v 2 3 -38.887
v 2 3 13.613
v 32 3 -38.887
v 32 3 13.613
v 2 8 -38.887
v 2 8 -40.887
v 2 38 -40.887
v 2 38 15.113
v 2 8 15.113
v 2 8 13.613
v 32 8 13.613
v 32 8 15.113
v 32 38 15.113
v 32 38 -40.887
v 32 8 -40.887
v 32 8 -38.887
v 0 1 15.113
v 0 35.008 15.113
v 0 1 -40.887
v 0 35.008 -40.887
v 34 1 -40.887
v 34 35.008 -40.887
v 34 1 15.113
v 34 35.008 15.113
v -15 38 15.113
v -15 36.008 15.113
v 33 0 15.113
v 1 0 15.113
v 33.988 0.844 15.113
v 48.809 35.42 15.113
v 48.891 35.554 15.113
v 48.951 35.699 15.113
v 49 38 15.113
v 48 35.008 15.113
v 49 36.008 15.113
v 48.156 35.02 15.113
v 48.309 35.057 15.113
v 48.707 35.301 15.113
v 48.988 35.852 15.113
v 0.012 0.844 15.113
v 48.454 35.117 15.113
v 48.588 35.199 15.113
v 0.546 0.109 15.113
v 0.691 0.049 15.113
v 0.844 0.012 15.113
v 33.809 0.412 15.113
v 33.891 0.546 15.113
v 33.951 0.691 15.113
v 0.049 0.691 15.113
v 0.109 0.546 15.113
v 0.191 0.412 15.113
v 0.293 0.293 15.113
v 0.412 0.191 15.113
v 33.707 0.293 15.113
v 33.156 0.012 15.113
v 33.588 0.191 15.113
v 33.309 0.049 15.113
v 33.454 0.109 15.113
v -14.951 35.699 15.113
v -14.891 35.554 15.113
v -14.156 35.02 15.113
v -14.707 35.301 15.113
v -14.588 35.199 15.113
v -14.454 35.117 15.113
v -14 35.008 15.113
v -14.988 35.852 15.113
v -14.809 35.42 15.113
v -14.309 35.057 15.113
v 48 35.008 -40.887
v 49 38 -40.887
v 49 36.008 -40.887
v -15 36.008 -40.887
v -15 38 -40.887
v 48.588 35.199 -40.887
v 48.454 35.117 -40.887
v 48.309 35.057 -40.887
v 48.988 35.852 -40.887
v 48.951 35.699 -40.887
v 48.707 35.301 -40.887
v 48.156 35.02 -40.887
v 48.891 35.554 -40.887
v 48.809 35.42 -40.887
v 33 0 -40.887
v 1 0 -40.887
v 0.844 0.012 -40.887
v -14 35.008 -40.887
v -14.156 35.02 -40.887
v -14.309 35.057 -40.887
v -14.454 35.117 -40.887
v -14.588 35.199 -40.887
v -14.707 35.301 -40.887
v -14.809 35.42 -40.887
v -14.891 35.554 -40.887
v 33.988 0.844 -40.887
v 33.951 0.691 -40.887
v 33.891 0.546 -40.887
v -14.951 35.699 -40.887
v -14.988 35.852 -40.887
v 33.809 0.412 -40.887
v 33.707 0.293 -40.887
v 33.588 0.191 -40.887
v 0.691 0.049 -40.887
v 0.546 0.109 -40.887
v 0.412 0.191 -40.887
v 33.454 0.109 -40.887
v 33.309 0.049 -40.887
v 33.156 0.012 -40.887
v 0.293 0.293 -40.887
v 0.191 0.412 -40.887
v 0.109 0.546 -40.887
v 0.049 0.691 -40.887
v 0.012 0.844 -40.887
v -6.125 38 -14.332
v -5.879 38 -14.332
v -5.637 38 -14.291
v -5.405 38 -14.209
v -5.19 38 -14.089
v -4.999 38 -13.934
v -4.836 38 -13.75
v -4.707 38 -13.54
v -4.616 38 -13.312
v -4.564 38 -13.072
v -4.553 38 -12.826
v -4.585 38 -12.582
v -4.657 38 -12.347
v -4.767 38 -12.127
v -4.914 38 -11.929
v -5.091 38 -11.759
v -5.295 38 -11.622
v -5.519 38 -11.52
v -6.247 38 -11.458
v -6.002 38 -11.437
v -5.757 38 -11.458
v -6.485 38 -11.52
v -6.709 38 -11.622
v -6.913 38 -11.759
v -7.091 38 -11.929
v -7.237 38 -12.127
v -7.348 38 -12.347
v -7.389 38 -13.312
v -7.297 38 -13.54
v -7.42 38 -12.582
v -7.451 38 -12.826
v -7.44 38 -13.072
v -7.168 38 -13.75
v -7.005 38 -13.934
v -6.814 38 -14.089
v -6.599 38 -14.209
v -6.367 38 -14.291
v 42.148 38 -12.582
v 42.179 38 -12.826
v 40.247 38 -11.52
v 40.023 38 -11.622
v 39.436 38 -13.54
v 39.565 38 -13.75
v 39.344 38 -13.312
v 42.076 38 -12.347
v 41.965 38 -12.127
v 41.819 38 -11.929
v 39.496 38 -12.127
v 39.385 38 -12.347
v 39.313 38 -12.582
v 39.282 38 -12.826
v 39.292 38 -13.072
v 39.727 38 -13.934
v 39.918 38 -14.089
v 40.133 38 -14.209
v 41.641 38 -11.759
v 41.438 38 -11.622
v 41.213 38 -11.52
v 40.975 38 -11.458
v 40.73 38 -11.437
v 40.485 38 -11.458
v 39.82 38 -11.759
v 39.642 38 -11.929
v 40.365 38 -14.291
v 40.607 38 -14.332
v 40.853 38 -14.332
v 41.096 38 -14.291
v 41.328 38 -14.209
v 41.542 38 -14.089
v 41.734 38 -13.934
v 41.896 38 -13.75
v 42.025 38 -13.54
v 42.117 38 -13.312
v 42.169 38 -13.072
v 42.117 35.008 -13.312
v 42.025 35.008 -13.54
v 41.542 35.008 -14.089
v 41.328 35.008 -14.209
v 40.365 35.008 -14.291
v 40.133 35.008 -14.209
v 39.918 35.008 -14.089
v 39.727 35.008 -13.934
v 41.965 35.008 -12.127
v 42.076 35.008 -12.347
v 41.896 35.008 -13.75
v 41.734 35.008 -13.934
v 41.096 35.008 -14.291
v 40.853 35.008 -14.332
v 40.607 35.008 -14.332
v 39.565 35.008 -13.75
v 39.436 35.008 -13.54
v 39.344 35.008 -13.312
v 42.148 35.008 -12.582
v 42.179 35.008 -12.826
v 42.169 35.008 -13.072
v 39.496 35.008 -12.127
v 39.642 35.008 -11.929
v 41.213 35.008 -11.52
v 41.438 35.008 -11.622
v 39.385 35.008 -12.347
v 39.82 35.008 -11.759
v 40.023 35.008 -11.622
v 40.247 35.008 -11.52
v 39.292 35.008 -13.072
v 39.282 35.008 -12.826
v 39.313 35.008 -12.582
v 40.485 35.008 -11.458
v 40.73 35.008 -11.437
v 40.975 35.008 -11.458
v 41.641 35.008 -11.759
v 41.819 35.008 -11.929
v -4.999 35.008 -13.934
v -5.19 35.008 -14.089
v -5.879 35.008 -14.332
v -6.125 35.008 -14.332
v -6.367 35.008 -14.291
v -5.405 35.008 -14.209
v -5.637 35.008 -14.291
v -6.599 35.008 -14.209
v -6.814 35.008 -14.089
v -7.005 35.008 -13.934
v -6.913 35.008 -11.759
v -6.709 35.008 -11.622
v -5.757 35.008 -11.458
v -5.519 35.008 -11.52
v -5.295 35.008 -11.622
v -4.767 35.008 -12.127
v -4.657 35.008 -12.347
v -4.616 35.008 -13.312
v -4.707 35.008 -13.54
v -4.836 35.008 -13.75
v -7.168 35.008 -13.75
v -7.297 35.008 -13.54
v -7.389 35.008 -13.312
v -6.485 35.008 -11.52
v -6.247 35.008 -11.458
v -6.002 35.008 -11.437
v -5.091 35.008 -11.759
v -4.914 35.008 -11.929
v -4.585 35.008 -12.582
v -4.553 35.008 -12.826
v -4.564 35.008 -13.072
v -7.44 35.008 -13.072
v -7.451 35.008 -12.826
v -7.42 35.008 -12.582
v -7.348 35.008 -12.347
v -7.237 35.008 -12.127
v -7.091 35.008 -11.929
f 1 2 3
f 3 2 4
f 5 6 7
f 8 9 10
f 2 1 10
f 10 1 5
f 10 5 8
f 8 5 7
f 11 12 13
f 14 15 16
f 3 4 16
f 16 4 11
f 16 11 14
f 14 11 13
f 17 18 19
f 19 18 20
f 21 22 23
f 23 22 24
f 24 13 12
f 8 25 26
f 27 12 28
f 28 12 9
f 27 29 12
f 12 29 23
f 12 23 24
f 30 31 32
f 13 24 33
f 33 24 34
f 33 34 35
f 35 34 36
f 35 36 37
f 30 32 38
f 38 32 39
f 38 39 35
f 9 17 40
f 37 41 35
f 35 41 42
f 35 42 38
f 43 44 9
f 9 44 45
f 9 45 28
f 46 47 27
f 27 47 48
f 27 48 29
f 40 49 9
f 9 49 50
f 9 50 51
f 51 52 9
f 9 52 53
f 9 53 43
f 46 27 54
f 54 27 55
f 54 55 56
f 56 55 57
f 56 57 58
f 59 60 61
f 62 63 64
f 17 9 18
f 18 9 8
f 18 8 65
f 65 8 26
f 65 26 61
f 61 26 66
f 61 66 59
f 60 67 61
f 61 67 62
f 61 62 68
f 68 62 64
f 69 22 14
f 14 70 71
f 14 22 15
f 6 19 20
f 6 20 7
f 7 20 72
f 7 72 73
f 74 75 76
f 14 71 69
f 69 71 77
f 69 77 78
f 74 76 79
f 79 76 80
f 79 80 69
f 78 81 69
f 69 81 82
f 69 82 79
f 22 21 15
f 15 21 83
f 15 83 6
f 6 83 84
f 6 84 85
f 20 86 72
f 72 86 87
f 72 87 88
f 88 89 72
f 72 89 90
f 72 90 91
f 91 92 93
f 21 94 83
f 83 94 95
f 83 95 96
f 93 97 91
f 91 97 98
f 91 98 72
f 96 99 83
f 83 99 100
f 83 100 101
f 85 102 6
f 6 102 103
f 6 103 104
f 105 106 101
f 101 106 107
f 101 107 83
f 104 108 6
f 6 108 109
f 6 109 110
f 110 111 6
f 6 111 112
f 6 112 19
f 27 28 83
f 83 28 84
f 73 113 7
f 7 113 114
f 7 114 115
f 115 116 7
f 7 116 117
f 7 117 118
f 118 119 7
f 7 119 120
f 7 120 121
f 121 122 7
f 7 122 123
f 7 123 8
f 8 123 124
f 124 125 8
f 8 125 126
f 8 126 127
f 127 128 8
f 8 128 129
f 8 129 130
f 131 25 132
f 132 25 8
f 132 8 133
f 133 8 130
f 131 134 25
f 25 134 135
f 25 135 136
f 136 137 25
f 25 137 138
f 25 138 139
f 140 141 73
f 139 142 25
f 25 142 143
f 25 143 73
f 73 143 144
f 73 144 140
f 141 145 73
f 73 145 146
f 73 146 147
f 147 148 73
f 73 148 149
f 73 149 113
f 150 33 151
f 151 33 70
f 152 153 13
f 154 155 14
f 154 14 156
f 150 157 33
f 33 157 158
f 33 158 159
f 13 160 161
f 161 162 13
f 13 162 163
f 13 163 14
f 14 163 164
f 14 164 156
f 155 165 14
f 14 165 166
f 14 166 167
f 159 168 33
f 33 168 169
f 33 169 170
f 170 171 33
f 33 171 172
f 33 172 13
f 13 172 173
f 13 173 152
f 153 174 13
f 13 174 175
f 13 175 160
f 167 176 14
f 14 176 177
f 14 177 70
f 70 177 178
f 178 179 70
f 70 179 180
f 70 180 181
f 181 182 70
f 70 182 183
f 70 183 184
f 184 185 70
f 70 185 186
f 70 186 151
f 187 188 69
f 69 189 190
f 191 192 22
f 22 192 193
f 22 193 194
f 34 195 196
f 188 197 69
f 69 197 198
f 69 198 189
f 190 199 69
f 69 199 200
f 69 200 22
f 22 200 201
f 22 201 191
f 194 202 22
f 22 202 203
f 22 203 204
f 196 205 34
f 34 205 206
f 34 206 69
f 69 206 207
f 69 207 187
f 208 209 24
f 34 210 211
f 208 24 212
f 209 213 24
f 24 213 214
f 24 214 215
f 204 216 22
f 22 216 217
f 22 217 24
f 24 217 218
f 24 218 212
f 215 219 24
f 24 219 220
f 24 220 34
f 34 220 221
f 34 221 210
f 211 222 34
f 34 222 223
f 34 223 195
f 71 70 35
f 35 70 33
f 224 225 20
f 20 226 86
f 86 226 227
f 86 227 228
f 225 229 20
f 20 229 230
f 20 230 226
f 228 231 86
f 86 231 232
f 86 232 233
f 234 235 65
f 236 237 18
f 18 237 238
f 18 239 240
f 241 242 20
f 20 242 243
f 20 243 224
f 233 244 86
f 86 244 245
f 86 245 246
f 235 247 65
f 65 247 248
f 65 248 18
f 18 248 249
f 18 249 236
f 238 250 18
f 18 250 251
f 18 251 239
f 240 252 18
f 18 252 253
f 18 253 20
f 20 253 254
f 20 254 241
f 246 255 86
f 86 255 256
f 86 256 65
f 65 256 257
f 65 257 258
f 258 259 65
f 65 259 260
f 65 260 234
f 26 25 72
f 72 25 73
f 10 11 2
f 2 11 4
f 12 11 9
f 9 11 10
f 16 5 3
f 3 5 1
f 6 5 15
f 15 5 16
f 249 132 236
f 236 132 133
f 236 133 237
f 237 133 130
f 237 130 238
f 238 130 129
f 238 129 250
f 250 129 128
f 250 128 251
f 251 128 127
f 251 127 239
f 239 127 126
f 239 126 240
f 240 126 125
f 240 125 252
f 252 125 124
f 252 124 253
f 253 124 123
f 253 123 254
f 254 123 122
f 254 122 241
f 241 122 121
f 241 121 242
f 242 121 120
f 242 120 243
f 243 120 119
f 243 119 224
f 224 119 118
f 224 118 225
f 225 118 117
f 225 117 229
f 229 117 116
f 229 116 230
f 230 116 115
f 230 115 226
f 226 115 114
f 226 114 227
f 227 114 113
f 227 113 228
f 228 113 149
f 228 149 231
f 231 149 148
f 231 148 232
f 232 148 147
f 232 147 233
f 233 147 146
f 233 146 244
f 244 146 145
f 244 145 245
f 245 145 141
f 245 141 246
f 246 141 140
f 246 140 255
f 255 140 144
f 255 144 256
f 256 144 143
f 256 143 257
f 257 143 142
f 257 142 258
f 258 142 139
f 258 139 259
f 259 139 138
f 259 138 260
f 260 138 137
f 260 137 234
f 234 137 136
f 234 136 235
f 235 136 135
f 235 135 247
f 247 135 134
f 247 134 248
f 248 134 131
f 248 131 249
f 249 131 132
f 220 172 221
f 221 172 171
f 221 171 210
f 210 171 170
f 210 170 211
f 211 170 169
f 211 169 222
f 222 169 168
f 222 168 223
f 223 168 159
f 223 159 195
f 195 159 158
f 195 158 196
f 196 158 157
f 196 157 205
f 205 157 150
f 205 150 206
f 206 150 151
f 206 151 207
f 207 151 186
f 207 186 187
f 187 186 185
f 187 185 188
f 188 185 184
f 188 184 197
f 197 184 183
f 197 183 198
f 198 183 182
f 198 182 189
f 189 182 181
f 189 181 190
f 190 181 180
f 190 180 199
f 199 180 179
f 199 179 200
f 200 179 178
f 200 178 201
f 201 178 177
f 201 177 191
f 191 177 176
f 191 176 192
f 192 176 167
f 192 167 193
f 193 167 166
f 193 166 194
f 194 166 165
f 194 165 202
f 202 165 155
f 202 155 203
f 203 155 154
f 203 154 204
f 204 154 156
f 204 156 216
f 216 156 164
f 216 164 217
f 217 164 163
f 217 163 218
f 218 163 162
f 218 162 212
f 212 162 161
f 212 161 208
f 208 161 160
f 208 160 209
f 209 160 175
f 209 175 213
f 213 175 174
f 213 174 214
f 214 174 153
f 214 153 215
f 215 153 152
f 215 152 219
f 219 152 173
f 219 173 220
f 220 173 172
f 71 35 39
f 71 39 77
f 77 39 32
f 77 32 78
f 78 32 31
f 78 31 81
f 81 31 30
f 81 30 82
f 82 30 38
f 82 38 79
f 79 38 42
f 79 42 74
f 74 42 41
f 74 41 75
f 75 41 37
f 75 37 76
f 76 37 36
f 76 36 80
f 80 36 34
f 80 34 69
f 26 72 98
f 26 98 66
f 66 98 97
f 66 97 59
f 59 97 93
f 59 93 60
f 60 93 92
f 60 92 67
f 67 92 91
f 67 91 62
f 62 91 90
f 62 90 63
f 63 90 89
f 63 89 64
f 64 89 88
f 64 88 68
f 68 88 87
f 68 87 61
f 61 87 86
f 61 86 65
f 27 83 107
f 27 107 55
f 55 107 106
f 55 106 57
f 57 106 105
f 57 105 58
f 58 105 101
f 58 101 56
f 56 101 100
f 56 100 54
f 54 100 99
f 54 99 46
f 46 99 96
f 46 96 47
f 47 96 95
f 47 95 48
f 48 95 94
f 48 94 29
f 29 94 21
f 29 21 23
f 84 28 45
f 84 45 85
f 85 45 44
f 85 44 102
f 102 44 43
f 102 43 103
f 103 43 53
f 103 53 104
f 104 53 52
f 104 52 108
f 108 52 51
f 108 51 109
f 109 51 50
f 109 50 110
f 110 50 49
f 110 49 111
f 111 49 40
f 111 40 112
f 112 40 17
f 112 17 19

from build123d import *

# Parameters (mm, degrees)
SKETCH2_W           = 34
SKETCH2_H           = 56
BOSS_EXTRUDE1_DEPTH = 3
SKETCH3_W           = 2
SKETCH3_H           = 56
BOSS_EXTRUDE2_DEPTH = 35
SKETCH4_W           = 56
SKETCH4_H           = 2.991859995
BOSS_EXTRUDE3_DEPTH = 15
SKETCH5_W           = 56
SKETCH5_H           = 2.991859995
BOSS_EXTRUDE4_DEPTH = 15
SKETCH6_W           = 30
SKETCH6_H           = 2
SKETCH6_H_2         = 1.5
BOSS_EXTRUDE5_DEPTH = 5
SKETCH8_R           = 1.45
CUT_EXTRUDE1_DEPTH  = 75.275058866
FILLET1_R           = 1


with BuildPart() as part:
    # Sketch2 → Boss-Extrude1 (new body)
    with BuildSketch(Plane(origin=(0, 0, 0), x_dir=(1, 0, 0), z_dir=(0, 1, 0))):
        with Locations((17, 12.887459807)):
            Rectangle(SKETCH2_W, SKETCH2_H)
    extrude(amount=BOSS_EXTRUDE1_DEPTH)

    # Sketch3 → Boss-Extrude2 (add)
    with BuildSketch(Plane(origin=(0, 3, 0), x_dir=(1, 0, 0), z_dir=(0, 1, 0))):
        with Locations((1, 12.887459807)):
            Rectangle(SKETCH3_W, SKETCH3_H)
        with Locations((33, 12.887459807)):
            Rectangle(SKETCH3_W, SKETCH3_H)
    extrude(amount=BOSS_EXTRUDE2_DEPTH)

    # Sketch4 → Boss-Extrude3 (add)
    with BuildSketch(Plane(origin=(34, 0, 0), x_dir=(0, 0, -1), z_dir=(1, 0, 0))):
        with Locations((12.887459807, 36.504070003)):
            Rectangle(SKETCH4_W, SKETCH4_H)
    extrude(amount=BOSS_EXTRUDE3_DEPTH)

    # Sketch5 → Boss-Extrude4 (add)
    with BuildSketch(Plane.ZY):
        with Locations((-12.887459807, 36.504070003)):
            Rectangle(SKETCH5_W, SKETCH5_H)
    extrude(amount=BOSS_EXTRUDE4_DEPTH)

    # Sketch6 → Boss-Extrude5 (add)
    with BuildSketch(Plane(origin=(0, 3, 0), x_dir=(1, 0, 0), z_dir=(0, 1, 0))):
        with Locations((17, 39.887459807)):
            Rectangle(SKETCH6_W, SKETCH6_H)
        with Locations((17, -14.362540193)):
            Rectangle(SKETCH6_W, SKETCH6_H_2)
    extrude(amount=BOSS_EXTRUDE5_DEPTH)

    # Sketch8 → Cut-Extrude1 (cut, through all)
    with BuildSketch(Plane(origin=(0, 38, 0), x_dir=(1, 0, 0), z_dir=(0, 1, 0))):
        with Locations(Location((-6.002072166, 12.887459807, 0), (0, 0, 270))):
            Circle(SKETCH8_R)
        with Locations(Location((40.730432143, 12.887459807, 0), (0, 0, 270))):
            Circle(SKETCH8_R)
    extrude(amount=-CUT_EXTRUDE1_DEPTH, mode=Mode.SUBTRACT)

    # Fillet1
    fillet1_edges = [part.edges().sort_by_distance(p)[0] for p in [
        (49, 35.008140005, -12.887459807),
        (-15, 35.008140005, -12.887459807),
        (34, 0, -12.887459807),
        (0, 0, -12.887459807),
    ]]
    fillet(fillet1_edges, radius=FILLET1_R)


solid = part.part
